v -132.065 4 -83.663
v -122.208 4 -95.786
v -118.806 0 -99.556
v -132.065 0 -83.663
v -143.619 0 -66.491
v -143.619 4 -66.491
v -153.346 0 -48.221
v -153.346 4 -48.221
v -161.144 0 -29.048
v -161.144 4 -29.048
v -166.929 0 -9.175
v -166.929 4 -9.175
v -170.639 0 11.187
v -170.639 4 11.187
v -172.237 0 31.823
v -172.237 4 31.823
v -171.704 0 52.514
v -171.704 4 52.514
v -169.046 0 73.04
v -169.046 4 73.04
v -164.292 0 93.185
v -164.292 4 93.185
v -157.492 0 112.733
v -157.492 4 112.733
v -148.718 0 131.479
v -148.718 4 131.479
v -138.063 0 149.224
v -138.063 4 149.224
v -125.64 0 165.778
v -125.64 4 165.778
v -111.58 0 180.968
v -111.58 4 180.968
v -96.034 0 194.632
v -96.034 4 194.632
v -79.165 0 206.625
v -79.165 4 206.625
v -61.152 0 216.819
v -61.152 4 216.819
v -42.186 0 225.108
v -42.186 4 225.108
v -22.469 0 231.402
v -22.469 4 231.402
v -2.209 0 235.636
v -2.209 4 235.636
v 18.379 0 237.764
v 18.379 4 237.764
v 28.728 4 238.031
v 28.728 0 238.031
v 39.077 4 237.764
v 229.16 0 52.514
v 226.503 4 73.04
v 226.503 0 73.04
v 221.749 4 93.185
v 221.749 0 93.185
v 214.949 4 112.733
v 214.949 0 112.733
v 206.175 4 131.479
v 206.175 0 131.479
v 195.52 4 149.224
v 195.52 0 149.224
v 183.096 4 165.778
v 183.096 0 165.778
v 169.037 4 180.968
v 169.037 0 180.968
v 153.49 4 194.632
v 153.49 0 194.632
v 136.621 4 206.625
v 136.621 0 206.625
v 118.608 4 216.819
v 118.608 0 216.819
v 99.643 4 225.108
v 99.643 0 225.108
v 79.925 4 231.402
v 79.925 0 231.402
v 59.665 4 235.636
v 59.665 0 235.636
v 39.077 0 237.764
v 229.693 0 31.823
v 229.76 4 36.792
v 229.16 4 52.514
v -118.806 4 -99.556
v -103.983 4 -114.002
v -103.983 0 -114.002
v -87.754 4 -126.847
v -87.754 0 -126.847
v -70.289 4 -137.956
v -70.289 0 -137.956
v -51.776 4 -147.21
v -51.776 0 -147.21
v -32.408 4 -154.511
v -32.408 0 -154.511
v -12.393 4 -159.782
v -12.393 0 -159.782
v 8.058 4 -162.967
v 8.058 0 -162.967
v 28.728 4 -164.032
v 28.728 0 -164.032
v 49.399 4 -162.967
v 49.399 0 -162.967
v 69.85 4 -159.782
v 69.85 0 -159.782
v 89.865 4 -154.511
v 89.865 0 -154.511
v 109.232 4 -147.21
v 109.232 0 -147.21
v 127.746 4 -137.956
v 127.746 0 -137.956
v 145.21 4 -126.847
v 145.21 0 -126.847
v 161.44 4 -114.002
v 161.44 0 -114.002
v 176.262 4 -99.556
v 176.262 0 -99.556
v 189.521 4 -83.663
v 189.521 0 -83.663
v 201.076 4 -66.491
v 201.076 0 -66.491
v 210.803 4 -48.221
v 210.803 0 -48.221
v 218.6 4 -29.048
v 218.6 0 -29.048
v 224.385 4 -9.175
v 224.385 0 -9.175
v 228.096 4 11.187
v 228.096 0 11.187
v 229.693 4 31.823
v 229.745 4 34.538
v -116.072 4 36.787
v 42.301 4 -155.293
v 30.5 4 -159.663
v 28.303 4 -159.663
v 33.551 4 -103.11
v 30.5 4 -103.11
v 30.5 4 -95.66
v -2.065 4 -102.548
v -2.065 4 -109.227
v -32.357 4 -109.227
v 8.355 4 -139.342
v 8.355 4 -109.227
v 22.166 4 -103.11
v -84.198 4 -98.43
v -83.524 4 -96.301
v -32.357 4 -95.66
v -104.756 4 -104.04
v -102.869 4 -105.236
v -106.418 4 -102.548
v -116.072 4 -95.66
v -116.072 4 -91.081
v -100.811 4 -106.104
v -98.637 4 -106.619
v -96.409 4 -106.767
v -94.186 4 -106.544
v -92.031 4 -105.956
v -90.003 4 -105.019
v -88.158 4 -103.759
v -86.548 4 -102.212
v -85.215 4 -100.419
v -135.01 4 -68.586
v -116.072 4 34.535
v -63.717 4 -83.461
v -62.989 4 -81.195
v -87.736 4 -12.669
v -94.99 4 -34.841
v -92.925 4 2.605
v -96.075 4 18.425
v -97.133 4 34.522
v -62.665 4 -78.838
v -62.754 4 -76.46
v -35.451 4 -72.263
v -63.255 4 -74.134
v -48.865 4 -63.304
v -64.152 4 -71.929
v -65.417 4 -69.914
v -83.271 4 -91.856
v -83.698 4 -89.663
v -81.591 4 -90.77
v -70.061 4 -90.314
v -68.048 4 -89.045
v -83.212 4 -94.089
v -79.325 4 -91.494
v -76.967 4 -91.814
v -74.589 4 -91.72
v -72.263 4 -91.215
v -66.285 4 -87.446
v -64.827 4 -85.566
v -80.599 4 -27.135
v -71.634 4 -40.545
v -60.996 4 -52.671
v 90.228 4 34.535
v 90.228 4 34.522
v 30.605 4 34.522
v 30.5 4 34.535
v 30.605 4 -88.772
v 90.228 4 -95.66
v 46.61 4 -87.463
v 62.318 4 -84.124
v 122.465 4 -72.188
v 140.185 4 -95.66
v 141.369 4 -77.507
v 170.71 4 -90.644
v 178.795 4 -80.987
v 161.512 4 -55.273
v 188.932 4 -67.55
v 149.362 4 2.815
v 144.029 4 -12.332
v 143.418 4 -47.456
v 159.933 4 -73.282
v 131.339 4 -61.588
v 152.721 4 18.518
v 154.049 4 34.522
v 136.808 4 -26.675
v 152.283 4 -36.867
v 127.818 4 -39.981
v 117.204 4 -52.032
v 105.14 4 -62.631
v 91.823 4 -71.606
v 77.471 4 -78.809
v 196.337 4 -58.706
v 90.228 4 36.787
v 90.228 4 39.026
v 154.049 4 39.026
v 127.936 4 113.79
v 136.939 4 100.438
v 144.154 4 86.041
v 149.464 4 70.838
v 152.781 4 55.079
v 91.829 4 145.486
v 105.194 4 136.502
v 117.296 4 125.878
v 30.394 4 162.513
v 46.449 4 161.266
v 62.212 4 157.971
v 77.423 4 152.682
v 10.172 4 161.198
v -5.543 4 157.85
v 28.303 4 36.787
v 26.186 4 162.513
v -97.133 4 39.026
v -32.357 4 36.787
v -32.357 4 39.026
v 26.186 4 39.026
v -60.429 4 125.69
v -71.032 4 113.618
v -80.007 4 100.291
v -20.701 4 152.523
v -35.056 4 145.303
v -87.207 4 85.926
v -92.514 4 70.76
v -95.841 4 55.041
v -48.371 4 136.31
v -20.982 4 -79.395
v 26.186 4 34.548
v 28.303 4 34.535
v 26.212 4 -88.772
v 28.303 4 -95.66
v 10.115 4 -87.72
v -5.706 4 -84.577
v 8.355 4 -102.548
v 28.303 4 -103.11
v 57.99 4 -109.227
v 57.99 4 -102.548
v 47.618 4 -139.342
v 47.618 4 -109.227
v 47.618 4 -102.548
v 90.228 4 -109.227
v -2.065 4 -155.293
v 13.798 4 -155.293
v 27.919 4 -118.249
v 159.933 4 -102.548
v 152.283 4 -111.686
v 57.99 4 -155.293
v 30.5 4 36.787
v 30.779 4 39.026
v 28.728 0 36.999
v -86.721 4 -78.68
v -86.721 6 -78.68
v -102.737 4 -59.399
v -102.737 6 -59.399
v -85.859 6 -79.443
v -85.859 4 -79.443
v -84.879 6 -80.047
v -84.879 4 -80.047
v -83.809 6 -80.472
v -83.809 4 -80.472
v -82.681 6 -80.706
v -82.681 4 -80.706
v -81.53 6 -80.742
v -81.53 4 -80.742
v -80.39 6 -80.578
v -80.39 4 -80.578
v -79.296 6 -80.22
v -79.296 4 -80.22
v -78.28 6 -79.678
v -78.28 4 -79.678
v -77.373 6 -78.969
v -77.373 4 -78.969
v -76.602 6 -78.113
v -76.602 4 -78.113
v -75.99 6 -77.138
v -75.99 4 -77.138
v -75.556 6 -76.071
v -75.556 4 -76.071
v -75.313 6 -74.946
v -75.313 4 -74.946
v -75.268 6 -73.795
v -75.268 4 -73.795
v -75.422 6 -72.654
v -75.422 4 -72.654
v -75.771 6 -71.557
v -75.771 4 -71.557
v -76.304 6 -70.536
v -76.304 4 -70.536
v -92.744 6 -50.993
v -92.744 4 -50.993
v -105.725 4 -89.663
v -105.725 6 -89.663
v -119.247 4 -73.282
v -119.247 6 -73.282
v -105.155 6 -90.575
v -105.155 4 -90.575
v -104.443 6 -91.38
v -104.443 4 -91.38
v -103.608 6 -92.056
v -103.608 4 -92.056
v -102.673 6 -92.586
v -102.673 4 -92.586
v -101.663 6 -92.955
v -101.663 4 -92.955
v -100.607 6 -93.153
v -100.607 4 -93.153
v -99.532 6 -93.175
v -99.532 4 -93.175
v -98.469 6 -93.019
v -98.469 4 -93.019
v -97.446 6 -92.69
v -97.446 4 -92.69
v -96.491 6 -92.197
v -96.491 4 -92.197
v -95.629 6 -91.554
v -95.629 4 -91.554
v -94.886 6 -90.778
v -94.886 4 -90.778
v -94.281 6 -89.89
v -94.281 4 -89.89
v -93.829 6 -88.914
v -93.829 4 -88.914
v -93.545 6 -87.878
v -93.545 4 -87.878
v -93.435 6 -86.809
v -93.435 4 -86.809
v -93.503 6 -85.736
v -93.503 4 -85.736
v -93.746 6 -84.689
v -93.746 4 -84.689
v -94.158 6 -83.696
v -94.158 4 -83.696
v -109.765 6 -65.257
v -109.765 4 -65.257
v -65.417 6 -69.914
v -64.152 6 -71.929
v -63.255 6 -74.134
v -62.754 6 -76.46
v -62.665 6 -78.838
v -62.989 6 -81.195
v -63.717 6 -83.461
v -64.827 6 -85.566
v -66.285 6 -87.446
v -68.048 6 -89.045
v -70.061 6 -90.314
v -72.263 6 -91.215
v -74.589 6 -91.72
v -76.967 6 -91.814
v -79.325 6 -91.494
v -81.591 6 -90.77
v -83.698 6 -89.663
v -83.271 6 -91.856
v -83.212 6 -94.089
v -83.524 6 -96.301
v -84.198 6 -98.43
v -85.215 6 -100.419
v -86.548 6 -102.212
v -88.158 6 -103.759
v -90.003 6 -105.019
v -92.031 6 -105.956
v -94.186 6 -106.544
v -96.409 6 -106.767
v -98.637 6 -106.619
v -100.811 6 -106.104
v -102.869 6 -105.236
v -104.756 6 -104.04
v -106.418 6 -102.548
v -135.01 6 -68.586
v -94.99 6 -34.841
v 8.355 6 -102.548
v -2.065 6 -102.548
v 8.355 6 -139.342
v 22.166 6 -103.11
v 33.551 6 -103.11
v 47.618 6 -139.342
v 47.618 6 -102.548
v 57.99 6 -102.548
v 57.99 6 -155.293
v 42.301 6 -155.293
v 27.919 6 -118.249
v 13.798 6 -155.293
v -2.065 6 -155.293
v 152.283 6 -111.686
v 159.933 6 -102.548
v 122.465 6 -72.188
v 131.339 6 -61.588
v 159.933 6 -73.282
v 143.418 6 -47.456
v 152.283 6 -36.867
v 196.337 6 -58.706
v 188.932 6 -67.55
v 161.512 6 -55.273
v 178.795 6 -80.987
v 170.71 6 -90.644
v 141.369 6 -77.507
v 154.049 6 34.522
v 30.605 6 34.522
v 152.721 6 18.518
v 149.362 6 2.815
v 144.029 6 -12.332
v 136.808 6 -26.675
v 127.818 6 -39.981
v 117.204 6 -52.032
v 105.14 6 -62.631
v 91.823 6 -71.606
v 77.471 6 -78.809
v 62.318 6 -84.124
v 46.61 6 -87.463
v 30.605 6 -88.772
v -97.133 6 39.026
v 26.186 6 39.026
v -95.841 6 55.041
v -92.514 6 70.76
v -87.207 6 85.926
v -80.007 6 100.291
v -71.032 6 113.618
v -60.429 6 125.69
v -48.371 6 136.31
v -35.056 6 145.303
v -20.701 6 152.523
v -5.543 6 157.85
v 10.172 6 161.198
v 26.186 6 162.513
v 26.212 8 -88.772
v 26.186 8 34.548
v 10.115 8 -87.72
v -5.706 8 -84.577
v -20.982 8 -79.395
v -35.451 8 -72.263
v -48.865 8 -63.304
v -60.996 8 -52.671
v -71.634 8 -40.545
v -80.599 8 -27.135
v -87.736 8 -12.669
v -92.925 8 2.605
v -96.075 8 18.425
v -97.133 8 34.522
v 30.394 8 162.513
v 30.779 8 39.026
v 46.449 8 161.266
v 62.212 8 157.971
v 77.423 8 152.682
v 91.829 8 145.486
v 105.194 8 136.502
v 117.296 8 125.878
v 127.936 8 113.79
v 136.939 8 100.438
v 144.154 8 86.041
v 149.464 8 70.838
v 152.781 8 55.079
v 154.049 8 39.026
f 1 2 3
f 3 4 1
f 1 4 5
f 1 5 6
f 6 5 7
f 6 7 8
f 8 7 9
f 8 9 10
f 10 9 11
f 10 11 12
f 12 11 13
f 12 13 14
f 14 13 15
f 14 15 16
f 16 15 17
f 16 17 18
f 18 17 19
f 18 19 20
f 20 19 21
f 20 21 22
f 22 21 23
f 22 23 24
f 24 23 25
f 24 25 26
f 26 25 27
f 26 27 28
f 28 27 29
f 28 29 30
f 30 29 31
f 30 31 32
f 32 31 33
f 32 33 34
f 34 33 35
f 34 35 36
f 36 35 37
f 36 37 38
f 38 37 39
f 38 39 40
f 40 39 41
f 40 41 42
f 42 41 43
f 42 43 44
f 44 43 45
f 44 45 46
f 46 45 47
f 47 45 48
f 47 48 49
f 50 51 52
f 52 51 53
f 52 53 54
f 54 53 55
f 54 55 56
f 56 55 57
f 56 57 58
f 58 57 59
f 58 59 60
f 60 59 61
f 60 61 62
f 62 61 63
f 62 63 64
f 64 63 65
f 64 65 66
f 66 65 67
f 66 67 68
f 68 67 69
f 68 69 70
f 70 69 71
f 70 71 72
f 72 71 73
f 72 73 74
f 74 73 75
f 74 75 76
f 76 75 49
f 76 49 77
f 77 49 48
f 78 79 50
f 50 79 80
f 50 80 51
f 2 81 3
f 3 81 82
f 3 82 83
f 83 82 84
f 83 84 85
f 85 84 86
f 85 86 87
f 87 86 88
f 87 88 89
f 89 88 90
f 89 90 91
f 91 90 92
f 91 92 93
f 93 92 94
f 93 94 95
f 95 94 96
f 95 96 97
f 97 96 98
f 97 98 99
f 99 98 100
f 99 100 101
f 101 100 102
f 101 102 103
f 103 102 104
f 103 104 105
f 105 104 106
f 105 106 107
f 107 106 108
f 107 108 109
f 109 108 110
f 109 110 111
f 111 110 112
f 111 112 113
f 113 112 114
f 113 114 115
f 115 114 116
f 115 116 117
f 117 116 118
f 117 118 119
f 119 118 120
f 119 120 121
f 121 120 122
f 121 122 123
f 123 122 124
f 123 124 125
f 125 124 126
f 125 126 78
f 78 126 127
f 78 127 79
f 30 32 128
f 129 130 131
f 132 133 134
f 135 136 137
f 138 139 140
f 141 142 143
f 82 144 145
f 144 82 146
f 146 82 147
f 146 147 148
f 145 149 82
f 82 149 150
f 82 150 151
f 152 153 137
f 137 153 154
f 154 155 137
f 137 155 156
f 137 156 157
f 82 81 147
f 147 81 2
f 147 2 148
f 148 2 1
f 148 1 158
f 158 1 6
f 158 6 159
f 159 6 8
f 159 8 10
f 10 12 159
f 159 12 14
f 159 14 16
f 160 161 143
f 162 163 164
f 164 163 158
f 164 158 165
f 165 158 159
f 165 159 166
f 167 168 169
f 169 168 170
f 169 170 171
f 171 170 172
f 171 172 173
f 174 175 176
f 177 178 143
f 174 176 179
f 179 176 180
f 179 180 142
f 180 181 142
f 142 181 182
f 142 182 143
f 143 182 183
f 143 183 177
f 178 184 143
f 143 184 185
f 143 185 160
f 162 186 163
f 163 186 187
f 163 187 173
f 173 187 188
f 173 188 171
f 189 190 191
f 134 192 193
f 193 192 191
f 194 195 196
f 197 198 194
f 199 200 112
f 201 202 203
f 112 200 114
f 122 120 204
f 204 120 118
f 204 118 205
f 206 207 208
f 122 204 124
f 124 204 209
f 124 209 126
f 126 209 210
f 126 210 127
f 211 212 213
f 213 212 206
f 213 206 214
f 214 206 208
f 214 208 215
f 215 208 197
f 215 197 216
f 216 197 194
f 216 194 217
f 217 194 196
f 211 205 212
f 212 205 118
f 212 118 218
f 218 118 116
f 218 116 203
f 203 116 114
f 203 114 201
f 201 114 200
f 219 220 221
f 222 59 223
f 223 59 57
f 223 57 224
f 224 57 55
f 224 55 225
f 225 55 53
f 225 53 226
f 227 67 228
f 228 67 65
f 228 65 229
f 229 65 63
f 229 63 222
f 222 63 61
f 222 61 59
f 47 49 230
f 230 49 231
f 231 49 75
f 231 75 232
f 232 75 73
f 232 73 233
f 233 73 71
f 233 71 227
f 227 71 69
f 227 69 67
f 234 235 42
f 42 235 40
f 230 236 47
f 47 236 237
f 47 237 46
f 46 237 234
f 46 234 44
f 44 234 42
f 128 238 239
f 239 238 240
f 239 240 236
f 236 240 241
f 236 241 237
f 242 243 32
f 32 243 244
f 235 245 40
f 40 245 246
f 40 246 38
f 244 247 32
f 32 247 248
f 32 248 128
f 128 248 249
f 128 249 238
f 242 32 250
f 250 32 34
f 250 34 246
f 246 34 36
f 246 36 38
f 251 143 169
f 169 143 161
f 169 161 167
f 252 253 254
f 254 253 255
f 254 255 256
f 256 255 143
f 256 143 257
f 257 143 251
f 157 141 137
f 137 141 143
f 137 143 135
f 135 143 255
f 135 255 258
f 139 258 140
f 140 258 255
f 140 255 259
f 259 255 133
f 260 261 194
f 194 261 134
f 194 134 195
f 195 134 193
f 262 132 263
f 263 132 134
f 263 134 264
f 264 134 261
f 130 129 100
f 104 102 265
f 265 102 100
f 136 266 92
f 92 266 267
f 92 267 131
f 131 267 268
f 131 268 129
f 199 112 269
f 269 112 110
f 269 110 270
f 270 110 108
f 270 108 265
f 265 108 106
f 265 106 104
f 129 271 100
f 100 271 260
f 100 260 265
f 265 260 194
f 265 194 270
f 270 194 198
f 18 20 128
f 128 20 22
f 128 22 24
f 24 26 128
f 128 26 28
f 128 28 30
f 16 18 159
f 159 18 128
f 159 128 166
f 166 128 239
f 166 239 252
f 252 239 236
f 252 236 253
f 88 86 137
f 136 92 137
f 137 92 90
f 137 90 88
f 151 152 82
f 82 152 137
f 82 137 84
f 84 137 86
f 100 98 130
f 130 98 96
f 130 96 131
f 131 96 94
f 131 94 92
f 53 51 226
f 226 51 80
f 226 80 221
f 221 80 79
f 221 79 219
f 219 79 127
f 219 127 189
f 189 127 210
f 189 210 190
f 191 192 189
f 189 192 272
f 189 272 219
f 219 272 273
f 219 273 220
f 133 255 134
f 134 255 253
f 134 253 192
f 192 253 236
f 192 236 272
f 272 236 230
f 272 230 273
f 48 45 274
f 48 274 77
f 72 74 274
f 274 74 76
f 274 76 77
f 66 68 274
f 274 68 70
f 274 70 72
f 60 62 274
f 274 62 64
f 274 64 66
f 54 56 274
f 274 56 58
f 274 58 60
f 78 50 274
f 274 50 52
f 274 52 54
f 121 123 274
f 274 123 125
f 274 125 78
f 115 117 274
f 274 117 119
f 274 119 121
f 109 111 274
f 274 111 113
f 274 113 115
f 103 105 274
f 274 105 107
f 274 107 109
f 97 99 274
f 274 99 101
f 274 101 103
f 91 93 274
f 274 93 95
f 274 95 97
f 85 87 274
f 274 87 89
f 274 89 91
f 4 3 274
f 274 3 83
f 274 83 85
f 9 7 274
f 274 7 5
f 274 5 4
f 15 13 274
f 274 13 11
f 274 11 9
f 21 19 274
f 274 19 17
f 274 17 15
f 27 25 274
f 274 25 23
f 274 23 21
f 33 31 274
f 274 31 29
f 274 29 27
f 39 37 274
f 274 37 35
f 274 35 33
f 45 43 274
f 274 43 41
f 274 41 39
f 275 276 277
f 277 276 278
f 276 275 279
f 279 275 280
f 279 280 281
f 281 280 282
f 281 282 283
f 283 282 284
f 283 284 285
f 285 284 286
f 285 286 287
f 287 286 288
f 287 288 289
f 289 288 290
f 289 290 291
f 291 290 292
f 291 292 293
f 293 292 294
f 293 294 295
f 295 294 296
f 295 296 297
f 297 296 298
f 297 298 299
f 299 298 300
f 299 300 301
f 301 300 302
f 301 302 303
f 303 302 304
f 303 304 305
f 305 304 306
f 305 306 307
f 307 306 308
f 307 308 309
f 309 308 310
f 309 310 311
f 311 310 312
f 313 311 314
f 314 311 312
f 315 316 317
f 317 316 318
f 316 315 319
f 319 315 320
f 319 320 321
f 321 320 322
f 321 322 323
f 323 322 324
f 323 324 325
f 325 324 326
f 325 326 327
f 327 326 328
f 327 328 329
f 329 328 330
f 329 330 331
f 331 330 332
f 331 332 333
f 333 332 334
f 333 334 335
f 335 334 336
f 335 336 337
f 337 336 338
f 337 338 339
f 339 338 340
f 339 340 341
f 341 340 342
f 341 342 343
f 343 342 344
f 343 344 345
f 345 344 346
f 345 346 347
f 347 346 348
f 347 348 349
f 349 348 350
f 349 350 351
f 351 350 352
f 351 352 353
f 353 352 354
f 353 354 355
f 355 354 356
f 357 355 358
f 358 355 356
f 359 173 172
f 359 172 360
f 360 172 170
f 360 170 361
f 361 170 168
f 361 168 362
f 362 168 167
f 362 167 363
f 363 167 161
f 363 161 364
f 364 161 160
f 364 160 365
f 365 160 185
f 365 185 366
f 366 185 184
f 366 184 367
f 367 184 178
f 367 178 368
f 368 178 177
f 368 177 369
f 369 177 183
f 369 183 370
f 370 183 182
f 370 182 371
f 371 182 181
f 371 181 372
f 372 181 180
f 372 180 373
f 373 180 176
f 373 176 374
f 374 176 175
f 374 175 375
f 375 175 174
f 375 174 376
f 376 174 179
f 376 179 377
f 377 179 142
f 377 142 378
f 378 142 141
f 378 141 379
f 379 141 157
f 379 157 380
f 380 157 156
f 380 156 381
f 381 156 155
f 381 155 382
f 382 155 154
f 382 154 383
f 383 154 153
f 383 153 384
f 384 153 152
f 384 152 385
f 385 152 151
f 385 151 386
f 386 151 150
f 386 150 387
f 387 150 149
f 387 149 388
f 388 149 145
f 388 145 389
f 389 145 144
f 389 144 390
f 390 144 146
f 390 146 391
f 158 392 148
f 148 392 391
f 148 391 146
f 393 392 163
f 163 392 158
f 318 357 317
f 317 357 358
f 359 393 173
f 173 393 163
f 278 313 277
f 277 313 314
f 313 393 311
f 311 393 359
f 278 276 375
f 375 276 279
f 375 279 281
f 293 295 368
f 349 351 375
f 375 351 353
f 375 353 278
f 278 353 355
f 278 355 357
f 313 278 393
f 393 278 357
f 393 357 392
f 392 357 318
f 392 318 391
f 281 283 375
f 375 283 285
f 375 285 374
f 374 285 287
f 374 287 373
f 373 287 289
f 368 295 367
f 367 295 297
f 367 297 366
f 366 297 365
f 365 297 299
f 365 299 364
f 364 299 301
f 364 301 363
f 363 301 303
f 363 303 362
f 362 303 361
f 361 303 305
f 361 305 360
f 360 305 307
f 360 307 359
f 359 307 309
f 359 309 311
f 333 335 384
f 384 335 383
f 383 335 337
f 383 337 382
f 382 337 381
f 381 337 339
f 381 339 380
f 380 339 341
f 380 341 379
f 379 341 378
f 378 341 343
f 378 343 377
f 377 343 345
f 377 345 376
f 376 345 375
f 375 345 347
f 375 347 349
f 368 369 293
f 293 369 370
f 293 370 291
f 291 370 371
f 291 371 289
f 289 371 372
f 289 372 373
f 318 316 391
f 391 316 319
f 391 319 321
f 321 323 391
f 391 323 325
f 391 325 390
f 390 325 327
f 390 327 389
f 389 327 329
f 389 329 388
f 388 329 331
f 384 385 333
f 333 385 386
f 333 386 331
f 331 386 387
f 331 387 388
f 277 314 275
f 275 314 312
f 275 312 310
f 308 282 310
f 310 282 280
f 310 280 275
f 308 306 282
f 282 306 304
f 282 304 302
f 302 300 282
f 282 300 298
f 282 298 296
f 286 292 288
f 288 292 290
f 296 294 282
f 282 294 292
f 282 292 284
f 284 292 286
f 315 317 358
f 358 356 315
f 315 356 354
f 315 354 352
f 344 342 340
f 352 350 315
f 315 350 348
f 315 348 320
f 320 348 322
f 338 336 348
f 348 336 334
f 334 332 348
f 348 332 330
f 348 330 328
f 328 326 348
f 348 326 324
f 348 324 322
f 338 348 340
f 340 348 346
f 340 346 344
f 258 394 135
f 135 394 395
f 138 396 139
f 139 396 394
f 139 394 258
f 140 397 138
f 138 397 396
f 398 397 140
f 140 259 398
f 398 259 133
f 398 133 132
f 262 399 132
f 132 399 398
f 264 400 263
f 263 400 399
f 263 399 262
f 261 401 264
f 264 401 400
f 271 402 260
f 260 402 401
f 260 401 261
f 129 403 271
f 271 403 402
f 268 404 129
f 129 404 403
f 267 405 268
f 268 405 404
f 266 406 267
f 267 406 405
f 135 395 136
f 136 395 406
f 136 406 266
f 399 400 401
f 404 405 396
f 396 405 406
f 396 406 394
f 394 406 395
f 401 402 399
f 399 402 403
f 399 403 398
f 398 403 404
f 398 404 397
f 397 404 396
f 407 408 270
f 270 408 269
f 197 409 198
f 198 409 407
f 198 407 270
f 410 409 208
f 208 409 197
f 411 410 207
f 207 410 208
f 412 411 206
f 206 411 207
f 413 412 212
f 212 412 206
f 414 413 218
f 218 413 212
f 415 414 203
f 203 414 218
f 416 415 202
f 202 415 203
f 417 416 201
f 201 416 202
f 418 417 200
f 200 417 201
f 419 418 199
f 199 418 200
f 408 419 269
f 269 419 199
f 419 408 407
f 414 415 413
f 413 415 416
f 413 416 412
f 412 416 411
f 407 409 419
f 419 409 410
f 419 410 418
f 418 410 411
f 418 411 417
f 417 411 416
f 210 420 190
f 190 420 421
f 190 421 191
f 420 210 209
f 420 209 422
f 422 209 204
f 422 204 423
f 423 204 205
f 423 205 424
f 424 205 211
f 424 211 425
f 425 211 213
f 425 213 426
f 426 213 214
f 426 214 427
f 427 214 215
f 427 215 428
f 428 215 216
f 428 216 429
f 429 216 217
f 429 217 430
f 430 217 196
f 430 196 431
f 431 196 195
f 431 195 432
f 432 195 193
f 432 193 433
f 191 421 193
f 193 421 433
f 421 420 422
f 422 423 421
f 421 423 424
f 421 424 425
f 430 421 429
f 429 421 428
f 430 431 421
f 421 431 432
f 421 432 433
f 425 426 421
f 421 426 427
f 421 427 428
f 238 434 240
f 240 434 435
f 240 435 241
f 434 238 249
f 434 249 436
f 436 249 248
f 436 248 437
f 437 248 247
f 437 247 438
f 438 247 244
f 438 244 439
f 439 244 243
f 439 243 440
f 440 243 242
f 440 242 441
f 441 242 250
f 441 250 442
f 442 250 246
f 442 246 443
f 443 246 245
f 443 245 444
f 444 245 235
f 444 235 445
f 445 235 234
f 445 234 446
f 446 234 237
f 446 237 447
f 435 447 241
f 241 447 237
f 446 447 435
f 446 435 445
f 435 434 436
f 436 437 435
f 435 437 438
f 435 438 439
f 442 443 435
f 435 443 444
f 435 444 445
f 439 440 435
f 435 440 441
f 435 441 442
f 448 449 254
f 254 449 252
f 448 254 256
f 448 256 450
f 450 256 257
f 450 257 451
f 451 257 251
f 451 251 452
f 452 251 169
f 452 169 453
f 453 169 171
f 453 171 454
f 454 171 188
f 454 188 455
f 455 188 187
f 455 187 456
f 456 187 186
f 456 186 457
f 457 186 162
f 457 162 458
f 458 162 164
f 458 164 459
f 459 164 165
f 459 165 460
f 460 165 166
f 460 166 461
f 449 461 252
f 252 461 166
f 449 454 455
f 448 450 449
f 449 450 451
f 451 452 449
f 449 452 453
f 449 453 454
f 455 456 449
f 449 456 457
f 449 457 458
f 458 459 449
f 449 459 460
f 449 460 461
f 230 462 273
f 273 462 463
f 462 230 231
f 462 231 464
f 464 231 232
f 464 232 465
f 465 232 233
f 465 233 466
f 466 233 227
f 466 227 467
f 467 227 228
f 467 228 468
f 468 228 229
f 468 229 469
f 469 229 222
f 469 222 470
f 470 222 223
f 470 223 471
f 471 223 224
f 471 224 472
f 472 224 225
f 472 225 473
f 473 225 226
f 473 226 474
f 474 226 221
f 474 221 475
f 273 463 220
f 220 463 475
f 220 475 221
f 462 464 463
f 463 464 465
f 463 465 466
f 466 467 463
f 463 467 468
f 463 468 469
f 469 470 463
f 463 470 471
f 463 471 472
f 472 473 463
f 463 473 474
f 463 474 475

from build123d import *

# Parameters (mm, degrees)
BOSS_EXTRUDE7_DEPTH   = 4
BOSS_EXTRUDE7_2_DEPTH = 4
SKETCH2_R             = 201.031521777
BOSS_EXTRUDE7_3_DEPTH = 4
BOSS_EXTRUDE10_DEPTH  = 6
BOSS_EXTRUDE11_DEPTH  = 8


with BuildPart() as part:
    # Sketch2 → Boss-Extrude7 (new body)
    with BuildSketch(Plane(origin=(0, 0, 0), x_dir=(1, 0, 0), z_dir=(0, 1, 0))):
        with BuildLine():
            Line((-105.724699903, 89.663383086), (-119.246794828, 73.282274115))
            Line((-119.246794828, 73.282274115), (-109.765335501, 65.257065635))
            Line((-109.765335501, 65.257065635), (-94.158059223, 83.696431494))
            ThreePointArc((-94.158059223, 83.696431494), (-96.957903767, 92.46322763), (-105.724699903, 89.663383086))
        make_face()
    extrude(amount=BOSS_EXTRUDE7_DEPTH)



with BuildPart() as body_2:
    # Sketch2 → Boss-Extrude7 2 (new body)
    with BuildSketch(Plane(origin=(0, 0, 0), x_dir=(1, 0, 0), z_dir=(0, 1, 0))):
        with BuildLine():
            Line((-86.720953962, 78.679511972), (-102.73694564, 59.398841753))
            Line((-102.73694564, 59.398841753), (-92.743706606, 50.992764213))
            Line((-92.743706606, 50.992764213), (-76.304147471, 70.536296052))
            ThreePointArc((-76.304147471, 70.536296052), (-77.810994424, 79.342936952), (-86.720953962, 78.679511972))
        make_face()
    extrude(amount=BOSS_EXTRUDE7_2_DEPTH)


with BuildPart() as body_3:
    # Sketch2 → Boss-Extrude7 3 (new body)
    with BuildSketch(Plane(origin=(0, 0, 0), x_dir=(1, 0, 0), z_dir=(0, 1, 0))):
        with Locations((28.728301923, -36.999075156)):
            Circle(SKETCH2_R)
        with BuildLine():
            Line((26.186120795, -39.0255328), (26.186120795, -162.512993196))
            ThreePointArc((26.186120795, -162.512993196), (-60.428579099, -125.690271204), (-97.133377287, -39.0255328))
            Line((-97.133377287, -39.0255328), (26.186120795, -39.0255328))
        make_face(mode=Mode.SUBTRACT)
        with BuildLine():
            ThreePointArc((154.049264899, -39.0255328), (117.2962644, -125.8779667), (30.394002326, -162.512993196))
            Line((30.394002326, -162.512993196), (30.778576004, -39.0255328))
            Line((30.778576004, -39.0255328), (154.049264899, -39.0255328))
        make_face(mode=Mode.SUBTRACT)
        with BuildLine():
            Line((26.186120795, -34.547580598), (-97.133377287, -34.521676642))
            ThreePointArc((-97.133377287, -34.521676642), (-60.995615689, 52.670789611), (26.21202475, 88.771917484))
            Line((26.21202475, 88.771917484), (26.186120795, -34.547580598))
        make_face(mode=Mode.SUBTRACT)
        with BuildLine():
            Line((-94.990225375, 34.841498226), (-135.009946729, 68.585928646))
            Line((-135.009946729, 68.585928646), (-106.417778138, 102.547819155))
            ThreePointArc((-106.417778138, 102.547819155), (-90.003173195, 105.01895685), (-83.698244067, 89.663383086))
            ThreePointArc((-83.698244067, 89.663383086), (-66.285464204, 87.446031309), (-65.417157073, 69.914129125))
            Line((-65.417157073, 69.914129125), (-94.990225375, 34.841498226))
        make_face(mode=Mode.SUBTRACT)
        Polygon((8.355015654, 102.547819155), (-2.065397597, 102.547819155), (-2.065397597, 155.293154737), (13.798357886, 155.293154737), (27.918843536, 118.248670779), (42.300819661, 155.293154737), (57.990248161, 155.293154737), (57.990248161, 102.547819155), (47.617792653, 102.547819155), (47.617792653, 139.342235762), (33.550995269, 103.109575833), (22.166053086, 103.109575833), (8.355015654, 139.342235762), align=None, mode=Mode.SUBTRACT)
        with BuildLine():
            ThreePointArc((30.605293957, 88.771917484), (117.203738276, 52.031920201), (154.049264899, -34.521676642))
            Line((154.049264899, -34.521676642), (30.605293957, -34.521676642))
            Line((30.605293957, -34.521676642), (30.605293957, 88.771917484))
        make_face(mode=Mode.SUBTRACT)
        Polygon((131.33927946, 61.588463956), (122.465283041, 72.187959679), (152.283015919, 111.685620156), (159.93326792, 102.547819155), (141.369313955, 77.507315286), (170.710153416, 90.644495422), (178.795417003, 80.987097248), (161.511800701, 55.272594698), (188.932474766, 67.550032606), (196.33706913, 58.705656004), (152.283015919, 36.866764734), (143.417774586, 47.455802993), (159.93326792, 73.282274115), align=None, mode=Mode.SUBTRACT)
    extrude(amount=BOSS_EXTRUDE7_3_DEPTH)


with BuildPart() as part_1:
    add(part.part)

    add(body_2.part)  # Boss-Extrude10 merges body 2

    add(body_3.part)  # Boss-Extrude10 merges body 3
    # Sketch2<12> → Boss-Extrude10 (add)
    # profile 1 of 5: a face of its own
    with BuildSketch(Plane(origin=(0, 0, 0), x_dir=(1, 0, 0), z_dir=(0, 1, 0))):
        with BuildLine():
            Line((30.605293957, -34.521676642), (154.049264899, -34.521676642))
            ThreePointArc((154.049264899, -34.521676642), (117.203738276, 52.031920201), (30.605293957, 88.771917484))
            Line((30.605293957, 88.771917484), (30.605293957, -34.521676642))
        make_face()
    # profile 2 of 5: a face of its own
    with BuildSketch(Plane(origin=(0, 0, 0), x_dir=(1, 0, 0), z_dir=(0, 1, 0))):
        with BuildLine():
            ThreePointArc((-97.133377287, -39.0255328), (-60.428579099, -125.690271204), (26.186120795, -162.512993196))
            Line((26.186120795, -162.512993196), (26.186120795, -39.0255328))
            Line((26.186120795, -39.0255328), (-97.133377287, -39.0255328))
        make_face()
    # profile 3 of 5: a face of its own
    with BuildSketch(Plane(origin=(0, 0, 0), x_dir=(1, 0, 0), z_dir=(0, 1, 0))):
        with BuildLine():
            Line((-106.417778138, 102.547819155), (-135.009946729, 68.585928646))
            Line((-135.009946729, 68.585928646), (-94.990225375, 34.841498226))
            Line((-94.990225375, 34.841498226), (-65.417157073, 69.914129125))
            ThreePointArc((-65.417157073, 69.914129125), (-66.285464204, 87.446031309), (-83.698244067, 89.663383086))
            ThreePointArc((-83.698244067, 89.663383086), (-90.003173195, 105.01895685), (-106.417778138, 102.547819155))
        make_face()
        with BuildLine():
            Line((-109.765335501, 65.257065635), (-119.246794828, 73.282274115))
            Line((-119.246794828, 73.282274115), (-105.724699903, 89.663383086))
            ThreePointArc((-105.724699903, 89.663383086), (-96.957903767, 92.46322763), (-94.158059223, 83.696431494))
            Line((-94.158059223, 83.696431494), (-109.765335501, 65.257065635))
        make_face(mode=Mode.SUBTRACT)
        with BuildLine():
            Line((-92.743706606, 50.992764213), (-102.73694564, 59.398841753))
            Line((-102.73694564, 59.398841753), (-86.720953962, 78.679511972))
            ThreePointArc((-86.720953962, 78.679511972), (-77.810994424, 79.342936952), (-76.304147471, 70.536296052))
            Line((-76.304147471, 70.536296052), (-92.743706606, 50.992764213))
        make_face(mode=Mode.SUBTRACT)
    # profile 4 of 5: a face of its own
    with BuildSketch(Plane(origin=(0, 0, 0), x_dir=(1, 0, 0), z_dir=(0, 1, 0))):
        Polygon((-2.065397597, 155.293154737), (-2.065397597, 102.547819155), (8.355015654, 102.547819155), (8.355015654, 139.342235762), (22.166053086, 103.109575833), (33.550995269, 103.109575833), (47.617792653, 139.342235762), (47.617792653, 102.547819155), (57.990248161, 102.547819155), (57.990248161, 155.293154737), (42.300819661, 155.293154737), (27.918843536, 118.248670779), (13.798357886, 155.293154737), align=None)
    # profile 5 of 5: a face of its own
    with BuildSketch(Plane(origin=(0, 0, 0), x_dir=(1, 0, 0), z_dir=(0, 1, 0))):
        Polygon((152.283015919, 111.685620156), (122.465283041, 72.187959679), (131.33927946, 61.588463956), (159.93326792, 73.282274115), (143.417774586, 47.455802993), (152.283015919, 36.866764734), (196.33706913, 58.705656004), (188.932474766, 67.550032606), (161.511800701, 55.272594698), (178.795417003, 80.987097248), (170.710153416, 90.644495422), (141.369313955, 77.507315286), (159.93326792, 102.547819155), align=None)
    extrude(amount=BOSS_EXTRUDE10_DEPTH)

    # Sketch2<13> → Boss-Extrude11 (add)
    with BuildSketch(Plane(origin=(0, 0, 0), x_dir=(1, 0, 0), z_dir=(0, 1, 0))):
        with BuildLine():
            Line((30.778576004, -39.0255328), (30.394002326, -162.512993196))
            ThreePointArc((30.394002326, -162.512993196), (117.2962644, -125.8779667), (154.049264899, -39.0255328))
            Line((154.049264899, -39.0255328), (30.778576004, -39.0255328))
        make_face()
        with BuildLine():
            ThreePointArc((26.21202475, 88.771917484), (-60.995615689, 52.670789611), (-97.133377287, -34.521676642))
            Line((-97.133377287, -34.521676642), (26.186120795, -34.547580598))
            Line((26.186120795, -34.547580598), (26.21202475, 88.771917484))
        make_face()
    extrude(amount=BOSS_EXTRUDE11_DEPTH)


solid = part_1.part
